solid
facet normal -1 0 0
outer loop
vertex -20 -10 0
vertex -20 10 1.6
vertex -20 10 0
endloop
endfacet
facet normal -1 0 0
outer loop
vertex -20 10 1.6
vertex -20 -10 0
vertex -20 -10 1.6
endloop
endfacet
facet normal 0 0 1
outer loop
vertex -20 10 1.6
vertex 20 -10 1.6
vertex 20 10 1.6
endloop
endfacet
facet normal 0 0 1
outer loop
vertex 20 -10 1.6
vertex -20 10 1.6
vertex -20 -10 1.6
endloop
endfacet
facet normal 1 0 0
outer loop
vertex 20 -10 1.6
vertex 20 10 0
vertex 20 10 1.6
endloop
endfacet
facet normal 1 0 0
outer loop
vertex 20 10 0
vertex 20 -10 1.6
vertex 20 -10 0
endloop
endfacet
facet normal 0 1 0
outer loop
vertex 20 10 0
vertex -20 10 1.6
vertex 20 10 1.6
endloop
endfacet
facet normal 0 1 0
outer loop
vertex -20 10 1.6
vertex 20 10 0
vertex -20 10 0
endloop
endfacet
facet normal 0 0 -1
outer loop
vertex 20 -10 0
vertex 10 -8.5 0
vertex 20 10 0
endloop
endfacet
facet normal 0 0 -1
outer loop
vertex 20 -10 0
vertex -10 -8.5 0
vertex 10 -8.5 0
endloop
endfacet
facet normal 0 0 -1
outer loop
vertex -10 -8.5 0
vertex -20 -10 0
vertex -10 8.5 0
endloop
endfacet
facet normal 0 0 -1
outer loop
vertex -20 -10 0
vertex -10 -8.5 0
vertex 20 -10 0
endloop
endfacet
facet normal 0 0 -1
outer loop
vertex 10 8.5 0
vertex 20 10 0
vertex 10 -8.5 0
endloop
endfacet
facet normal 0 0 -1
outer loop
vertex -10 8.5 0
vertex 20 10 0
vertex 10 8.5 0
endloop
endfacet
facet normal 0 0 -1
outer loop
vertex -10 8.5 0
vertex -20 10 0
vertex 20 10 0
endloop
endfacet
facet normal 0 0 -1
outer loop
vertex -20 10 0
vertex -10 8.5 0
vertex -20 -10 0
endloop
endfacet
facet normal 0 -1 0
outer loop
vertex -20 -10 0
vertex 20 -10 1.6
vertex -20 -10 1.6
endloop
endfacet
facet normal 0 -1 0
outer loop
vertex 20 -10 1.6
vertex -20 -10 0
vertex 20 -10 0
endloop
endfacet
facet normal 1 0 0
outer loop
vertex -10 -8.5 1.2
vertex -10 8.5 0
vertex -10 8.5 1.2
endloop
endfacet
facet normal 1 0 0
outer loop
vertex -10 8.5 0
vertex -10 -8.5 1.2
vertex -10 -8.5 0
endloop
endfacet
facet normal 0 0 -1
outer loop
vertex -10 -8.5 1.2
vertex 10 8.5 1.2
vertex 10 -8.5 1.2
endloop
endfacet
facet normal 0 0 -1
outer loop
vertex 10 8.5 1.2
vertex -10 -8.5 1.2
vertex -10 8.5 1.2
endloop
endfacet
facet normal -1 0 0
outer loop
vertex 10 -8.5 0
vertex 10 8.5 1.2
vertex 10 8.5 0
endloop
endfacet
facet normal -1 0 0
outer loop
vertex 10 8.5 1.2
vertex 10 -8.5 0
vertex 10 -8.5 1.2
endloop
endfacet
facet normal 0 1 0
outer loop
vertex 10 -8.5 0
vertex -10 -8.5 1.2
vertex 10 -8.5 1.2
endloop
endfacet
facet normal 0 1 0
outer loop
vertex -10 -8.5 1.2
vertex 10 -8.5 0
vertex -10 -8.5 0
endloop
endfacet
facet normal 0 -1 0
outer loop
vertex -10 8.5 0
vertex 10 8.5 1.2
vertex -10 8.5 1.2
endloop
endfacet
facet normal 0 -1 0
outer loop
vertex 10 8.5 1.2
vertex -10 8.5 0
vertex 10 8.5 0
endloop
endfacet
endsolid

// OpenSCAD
width = 40;
height = 20;
depth = 1.6;

tri_width = 20;
tri_height = 17;
tri_depth = 1.2;

text_depth = 2;

difference() {
    translate([-width/2, -height/2, 0]) cube([width, height, depth]);
    translate([-tri_width/2, -tri_height/2, 0]) cube([tri_width, tri_height, tri_depth]);
}

//translate([1.5, 0, depth]) {
//    linear_extrude(height = text_depth) {
//        text("NOMZ", halign = "center", valign = "center", font = "Envy Code R:style=Bold", spacing=1.25);
//    }
//}
